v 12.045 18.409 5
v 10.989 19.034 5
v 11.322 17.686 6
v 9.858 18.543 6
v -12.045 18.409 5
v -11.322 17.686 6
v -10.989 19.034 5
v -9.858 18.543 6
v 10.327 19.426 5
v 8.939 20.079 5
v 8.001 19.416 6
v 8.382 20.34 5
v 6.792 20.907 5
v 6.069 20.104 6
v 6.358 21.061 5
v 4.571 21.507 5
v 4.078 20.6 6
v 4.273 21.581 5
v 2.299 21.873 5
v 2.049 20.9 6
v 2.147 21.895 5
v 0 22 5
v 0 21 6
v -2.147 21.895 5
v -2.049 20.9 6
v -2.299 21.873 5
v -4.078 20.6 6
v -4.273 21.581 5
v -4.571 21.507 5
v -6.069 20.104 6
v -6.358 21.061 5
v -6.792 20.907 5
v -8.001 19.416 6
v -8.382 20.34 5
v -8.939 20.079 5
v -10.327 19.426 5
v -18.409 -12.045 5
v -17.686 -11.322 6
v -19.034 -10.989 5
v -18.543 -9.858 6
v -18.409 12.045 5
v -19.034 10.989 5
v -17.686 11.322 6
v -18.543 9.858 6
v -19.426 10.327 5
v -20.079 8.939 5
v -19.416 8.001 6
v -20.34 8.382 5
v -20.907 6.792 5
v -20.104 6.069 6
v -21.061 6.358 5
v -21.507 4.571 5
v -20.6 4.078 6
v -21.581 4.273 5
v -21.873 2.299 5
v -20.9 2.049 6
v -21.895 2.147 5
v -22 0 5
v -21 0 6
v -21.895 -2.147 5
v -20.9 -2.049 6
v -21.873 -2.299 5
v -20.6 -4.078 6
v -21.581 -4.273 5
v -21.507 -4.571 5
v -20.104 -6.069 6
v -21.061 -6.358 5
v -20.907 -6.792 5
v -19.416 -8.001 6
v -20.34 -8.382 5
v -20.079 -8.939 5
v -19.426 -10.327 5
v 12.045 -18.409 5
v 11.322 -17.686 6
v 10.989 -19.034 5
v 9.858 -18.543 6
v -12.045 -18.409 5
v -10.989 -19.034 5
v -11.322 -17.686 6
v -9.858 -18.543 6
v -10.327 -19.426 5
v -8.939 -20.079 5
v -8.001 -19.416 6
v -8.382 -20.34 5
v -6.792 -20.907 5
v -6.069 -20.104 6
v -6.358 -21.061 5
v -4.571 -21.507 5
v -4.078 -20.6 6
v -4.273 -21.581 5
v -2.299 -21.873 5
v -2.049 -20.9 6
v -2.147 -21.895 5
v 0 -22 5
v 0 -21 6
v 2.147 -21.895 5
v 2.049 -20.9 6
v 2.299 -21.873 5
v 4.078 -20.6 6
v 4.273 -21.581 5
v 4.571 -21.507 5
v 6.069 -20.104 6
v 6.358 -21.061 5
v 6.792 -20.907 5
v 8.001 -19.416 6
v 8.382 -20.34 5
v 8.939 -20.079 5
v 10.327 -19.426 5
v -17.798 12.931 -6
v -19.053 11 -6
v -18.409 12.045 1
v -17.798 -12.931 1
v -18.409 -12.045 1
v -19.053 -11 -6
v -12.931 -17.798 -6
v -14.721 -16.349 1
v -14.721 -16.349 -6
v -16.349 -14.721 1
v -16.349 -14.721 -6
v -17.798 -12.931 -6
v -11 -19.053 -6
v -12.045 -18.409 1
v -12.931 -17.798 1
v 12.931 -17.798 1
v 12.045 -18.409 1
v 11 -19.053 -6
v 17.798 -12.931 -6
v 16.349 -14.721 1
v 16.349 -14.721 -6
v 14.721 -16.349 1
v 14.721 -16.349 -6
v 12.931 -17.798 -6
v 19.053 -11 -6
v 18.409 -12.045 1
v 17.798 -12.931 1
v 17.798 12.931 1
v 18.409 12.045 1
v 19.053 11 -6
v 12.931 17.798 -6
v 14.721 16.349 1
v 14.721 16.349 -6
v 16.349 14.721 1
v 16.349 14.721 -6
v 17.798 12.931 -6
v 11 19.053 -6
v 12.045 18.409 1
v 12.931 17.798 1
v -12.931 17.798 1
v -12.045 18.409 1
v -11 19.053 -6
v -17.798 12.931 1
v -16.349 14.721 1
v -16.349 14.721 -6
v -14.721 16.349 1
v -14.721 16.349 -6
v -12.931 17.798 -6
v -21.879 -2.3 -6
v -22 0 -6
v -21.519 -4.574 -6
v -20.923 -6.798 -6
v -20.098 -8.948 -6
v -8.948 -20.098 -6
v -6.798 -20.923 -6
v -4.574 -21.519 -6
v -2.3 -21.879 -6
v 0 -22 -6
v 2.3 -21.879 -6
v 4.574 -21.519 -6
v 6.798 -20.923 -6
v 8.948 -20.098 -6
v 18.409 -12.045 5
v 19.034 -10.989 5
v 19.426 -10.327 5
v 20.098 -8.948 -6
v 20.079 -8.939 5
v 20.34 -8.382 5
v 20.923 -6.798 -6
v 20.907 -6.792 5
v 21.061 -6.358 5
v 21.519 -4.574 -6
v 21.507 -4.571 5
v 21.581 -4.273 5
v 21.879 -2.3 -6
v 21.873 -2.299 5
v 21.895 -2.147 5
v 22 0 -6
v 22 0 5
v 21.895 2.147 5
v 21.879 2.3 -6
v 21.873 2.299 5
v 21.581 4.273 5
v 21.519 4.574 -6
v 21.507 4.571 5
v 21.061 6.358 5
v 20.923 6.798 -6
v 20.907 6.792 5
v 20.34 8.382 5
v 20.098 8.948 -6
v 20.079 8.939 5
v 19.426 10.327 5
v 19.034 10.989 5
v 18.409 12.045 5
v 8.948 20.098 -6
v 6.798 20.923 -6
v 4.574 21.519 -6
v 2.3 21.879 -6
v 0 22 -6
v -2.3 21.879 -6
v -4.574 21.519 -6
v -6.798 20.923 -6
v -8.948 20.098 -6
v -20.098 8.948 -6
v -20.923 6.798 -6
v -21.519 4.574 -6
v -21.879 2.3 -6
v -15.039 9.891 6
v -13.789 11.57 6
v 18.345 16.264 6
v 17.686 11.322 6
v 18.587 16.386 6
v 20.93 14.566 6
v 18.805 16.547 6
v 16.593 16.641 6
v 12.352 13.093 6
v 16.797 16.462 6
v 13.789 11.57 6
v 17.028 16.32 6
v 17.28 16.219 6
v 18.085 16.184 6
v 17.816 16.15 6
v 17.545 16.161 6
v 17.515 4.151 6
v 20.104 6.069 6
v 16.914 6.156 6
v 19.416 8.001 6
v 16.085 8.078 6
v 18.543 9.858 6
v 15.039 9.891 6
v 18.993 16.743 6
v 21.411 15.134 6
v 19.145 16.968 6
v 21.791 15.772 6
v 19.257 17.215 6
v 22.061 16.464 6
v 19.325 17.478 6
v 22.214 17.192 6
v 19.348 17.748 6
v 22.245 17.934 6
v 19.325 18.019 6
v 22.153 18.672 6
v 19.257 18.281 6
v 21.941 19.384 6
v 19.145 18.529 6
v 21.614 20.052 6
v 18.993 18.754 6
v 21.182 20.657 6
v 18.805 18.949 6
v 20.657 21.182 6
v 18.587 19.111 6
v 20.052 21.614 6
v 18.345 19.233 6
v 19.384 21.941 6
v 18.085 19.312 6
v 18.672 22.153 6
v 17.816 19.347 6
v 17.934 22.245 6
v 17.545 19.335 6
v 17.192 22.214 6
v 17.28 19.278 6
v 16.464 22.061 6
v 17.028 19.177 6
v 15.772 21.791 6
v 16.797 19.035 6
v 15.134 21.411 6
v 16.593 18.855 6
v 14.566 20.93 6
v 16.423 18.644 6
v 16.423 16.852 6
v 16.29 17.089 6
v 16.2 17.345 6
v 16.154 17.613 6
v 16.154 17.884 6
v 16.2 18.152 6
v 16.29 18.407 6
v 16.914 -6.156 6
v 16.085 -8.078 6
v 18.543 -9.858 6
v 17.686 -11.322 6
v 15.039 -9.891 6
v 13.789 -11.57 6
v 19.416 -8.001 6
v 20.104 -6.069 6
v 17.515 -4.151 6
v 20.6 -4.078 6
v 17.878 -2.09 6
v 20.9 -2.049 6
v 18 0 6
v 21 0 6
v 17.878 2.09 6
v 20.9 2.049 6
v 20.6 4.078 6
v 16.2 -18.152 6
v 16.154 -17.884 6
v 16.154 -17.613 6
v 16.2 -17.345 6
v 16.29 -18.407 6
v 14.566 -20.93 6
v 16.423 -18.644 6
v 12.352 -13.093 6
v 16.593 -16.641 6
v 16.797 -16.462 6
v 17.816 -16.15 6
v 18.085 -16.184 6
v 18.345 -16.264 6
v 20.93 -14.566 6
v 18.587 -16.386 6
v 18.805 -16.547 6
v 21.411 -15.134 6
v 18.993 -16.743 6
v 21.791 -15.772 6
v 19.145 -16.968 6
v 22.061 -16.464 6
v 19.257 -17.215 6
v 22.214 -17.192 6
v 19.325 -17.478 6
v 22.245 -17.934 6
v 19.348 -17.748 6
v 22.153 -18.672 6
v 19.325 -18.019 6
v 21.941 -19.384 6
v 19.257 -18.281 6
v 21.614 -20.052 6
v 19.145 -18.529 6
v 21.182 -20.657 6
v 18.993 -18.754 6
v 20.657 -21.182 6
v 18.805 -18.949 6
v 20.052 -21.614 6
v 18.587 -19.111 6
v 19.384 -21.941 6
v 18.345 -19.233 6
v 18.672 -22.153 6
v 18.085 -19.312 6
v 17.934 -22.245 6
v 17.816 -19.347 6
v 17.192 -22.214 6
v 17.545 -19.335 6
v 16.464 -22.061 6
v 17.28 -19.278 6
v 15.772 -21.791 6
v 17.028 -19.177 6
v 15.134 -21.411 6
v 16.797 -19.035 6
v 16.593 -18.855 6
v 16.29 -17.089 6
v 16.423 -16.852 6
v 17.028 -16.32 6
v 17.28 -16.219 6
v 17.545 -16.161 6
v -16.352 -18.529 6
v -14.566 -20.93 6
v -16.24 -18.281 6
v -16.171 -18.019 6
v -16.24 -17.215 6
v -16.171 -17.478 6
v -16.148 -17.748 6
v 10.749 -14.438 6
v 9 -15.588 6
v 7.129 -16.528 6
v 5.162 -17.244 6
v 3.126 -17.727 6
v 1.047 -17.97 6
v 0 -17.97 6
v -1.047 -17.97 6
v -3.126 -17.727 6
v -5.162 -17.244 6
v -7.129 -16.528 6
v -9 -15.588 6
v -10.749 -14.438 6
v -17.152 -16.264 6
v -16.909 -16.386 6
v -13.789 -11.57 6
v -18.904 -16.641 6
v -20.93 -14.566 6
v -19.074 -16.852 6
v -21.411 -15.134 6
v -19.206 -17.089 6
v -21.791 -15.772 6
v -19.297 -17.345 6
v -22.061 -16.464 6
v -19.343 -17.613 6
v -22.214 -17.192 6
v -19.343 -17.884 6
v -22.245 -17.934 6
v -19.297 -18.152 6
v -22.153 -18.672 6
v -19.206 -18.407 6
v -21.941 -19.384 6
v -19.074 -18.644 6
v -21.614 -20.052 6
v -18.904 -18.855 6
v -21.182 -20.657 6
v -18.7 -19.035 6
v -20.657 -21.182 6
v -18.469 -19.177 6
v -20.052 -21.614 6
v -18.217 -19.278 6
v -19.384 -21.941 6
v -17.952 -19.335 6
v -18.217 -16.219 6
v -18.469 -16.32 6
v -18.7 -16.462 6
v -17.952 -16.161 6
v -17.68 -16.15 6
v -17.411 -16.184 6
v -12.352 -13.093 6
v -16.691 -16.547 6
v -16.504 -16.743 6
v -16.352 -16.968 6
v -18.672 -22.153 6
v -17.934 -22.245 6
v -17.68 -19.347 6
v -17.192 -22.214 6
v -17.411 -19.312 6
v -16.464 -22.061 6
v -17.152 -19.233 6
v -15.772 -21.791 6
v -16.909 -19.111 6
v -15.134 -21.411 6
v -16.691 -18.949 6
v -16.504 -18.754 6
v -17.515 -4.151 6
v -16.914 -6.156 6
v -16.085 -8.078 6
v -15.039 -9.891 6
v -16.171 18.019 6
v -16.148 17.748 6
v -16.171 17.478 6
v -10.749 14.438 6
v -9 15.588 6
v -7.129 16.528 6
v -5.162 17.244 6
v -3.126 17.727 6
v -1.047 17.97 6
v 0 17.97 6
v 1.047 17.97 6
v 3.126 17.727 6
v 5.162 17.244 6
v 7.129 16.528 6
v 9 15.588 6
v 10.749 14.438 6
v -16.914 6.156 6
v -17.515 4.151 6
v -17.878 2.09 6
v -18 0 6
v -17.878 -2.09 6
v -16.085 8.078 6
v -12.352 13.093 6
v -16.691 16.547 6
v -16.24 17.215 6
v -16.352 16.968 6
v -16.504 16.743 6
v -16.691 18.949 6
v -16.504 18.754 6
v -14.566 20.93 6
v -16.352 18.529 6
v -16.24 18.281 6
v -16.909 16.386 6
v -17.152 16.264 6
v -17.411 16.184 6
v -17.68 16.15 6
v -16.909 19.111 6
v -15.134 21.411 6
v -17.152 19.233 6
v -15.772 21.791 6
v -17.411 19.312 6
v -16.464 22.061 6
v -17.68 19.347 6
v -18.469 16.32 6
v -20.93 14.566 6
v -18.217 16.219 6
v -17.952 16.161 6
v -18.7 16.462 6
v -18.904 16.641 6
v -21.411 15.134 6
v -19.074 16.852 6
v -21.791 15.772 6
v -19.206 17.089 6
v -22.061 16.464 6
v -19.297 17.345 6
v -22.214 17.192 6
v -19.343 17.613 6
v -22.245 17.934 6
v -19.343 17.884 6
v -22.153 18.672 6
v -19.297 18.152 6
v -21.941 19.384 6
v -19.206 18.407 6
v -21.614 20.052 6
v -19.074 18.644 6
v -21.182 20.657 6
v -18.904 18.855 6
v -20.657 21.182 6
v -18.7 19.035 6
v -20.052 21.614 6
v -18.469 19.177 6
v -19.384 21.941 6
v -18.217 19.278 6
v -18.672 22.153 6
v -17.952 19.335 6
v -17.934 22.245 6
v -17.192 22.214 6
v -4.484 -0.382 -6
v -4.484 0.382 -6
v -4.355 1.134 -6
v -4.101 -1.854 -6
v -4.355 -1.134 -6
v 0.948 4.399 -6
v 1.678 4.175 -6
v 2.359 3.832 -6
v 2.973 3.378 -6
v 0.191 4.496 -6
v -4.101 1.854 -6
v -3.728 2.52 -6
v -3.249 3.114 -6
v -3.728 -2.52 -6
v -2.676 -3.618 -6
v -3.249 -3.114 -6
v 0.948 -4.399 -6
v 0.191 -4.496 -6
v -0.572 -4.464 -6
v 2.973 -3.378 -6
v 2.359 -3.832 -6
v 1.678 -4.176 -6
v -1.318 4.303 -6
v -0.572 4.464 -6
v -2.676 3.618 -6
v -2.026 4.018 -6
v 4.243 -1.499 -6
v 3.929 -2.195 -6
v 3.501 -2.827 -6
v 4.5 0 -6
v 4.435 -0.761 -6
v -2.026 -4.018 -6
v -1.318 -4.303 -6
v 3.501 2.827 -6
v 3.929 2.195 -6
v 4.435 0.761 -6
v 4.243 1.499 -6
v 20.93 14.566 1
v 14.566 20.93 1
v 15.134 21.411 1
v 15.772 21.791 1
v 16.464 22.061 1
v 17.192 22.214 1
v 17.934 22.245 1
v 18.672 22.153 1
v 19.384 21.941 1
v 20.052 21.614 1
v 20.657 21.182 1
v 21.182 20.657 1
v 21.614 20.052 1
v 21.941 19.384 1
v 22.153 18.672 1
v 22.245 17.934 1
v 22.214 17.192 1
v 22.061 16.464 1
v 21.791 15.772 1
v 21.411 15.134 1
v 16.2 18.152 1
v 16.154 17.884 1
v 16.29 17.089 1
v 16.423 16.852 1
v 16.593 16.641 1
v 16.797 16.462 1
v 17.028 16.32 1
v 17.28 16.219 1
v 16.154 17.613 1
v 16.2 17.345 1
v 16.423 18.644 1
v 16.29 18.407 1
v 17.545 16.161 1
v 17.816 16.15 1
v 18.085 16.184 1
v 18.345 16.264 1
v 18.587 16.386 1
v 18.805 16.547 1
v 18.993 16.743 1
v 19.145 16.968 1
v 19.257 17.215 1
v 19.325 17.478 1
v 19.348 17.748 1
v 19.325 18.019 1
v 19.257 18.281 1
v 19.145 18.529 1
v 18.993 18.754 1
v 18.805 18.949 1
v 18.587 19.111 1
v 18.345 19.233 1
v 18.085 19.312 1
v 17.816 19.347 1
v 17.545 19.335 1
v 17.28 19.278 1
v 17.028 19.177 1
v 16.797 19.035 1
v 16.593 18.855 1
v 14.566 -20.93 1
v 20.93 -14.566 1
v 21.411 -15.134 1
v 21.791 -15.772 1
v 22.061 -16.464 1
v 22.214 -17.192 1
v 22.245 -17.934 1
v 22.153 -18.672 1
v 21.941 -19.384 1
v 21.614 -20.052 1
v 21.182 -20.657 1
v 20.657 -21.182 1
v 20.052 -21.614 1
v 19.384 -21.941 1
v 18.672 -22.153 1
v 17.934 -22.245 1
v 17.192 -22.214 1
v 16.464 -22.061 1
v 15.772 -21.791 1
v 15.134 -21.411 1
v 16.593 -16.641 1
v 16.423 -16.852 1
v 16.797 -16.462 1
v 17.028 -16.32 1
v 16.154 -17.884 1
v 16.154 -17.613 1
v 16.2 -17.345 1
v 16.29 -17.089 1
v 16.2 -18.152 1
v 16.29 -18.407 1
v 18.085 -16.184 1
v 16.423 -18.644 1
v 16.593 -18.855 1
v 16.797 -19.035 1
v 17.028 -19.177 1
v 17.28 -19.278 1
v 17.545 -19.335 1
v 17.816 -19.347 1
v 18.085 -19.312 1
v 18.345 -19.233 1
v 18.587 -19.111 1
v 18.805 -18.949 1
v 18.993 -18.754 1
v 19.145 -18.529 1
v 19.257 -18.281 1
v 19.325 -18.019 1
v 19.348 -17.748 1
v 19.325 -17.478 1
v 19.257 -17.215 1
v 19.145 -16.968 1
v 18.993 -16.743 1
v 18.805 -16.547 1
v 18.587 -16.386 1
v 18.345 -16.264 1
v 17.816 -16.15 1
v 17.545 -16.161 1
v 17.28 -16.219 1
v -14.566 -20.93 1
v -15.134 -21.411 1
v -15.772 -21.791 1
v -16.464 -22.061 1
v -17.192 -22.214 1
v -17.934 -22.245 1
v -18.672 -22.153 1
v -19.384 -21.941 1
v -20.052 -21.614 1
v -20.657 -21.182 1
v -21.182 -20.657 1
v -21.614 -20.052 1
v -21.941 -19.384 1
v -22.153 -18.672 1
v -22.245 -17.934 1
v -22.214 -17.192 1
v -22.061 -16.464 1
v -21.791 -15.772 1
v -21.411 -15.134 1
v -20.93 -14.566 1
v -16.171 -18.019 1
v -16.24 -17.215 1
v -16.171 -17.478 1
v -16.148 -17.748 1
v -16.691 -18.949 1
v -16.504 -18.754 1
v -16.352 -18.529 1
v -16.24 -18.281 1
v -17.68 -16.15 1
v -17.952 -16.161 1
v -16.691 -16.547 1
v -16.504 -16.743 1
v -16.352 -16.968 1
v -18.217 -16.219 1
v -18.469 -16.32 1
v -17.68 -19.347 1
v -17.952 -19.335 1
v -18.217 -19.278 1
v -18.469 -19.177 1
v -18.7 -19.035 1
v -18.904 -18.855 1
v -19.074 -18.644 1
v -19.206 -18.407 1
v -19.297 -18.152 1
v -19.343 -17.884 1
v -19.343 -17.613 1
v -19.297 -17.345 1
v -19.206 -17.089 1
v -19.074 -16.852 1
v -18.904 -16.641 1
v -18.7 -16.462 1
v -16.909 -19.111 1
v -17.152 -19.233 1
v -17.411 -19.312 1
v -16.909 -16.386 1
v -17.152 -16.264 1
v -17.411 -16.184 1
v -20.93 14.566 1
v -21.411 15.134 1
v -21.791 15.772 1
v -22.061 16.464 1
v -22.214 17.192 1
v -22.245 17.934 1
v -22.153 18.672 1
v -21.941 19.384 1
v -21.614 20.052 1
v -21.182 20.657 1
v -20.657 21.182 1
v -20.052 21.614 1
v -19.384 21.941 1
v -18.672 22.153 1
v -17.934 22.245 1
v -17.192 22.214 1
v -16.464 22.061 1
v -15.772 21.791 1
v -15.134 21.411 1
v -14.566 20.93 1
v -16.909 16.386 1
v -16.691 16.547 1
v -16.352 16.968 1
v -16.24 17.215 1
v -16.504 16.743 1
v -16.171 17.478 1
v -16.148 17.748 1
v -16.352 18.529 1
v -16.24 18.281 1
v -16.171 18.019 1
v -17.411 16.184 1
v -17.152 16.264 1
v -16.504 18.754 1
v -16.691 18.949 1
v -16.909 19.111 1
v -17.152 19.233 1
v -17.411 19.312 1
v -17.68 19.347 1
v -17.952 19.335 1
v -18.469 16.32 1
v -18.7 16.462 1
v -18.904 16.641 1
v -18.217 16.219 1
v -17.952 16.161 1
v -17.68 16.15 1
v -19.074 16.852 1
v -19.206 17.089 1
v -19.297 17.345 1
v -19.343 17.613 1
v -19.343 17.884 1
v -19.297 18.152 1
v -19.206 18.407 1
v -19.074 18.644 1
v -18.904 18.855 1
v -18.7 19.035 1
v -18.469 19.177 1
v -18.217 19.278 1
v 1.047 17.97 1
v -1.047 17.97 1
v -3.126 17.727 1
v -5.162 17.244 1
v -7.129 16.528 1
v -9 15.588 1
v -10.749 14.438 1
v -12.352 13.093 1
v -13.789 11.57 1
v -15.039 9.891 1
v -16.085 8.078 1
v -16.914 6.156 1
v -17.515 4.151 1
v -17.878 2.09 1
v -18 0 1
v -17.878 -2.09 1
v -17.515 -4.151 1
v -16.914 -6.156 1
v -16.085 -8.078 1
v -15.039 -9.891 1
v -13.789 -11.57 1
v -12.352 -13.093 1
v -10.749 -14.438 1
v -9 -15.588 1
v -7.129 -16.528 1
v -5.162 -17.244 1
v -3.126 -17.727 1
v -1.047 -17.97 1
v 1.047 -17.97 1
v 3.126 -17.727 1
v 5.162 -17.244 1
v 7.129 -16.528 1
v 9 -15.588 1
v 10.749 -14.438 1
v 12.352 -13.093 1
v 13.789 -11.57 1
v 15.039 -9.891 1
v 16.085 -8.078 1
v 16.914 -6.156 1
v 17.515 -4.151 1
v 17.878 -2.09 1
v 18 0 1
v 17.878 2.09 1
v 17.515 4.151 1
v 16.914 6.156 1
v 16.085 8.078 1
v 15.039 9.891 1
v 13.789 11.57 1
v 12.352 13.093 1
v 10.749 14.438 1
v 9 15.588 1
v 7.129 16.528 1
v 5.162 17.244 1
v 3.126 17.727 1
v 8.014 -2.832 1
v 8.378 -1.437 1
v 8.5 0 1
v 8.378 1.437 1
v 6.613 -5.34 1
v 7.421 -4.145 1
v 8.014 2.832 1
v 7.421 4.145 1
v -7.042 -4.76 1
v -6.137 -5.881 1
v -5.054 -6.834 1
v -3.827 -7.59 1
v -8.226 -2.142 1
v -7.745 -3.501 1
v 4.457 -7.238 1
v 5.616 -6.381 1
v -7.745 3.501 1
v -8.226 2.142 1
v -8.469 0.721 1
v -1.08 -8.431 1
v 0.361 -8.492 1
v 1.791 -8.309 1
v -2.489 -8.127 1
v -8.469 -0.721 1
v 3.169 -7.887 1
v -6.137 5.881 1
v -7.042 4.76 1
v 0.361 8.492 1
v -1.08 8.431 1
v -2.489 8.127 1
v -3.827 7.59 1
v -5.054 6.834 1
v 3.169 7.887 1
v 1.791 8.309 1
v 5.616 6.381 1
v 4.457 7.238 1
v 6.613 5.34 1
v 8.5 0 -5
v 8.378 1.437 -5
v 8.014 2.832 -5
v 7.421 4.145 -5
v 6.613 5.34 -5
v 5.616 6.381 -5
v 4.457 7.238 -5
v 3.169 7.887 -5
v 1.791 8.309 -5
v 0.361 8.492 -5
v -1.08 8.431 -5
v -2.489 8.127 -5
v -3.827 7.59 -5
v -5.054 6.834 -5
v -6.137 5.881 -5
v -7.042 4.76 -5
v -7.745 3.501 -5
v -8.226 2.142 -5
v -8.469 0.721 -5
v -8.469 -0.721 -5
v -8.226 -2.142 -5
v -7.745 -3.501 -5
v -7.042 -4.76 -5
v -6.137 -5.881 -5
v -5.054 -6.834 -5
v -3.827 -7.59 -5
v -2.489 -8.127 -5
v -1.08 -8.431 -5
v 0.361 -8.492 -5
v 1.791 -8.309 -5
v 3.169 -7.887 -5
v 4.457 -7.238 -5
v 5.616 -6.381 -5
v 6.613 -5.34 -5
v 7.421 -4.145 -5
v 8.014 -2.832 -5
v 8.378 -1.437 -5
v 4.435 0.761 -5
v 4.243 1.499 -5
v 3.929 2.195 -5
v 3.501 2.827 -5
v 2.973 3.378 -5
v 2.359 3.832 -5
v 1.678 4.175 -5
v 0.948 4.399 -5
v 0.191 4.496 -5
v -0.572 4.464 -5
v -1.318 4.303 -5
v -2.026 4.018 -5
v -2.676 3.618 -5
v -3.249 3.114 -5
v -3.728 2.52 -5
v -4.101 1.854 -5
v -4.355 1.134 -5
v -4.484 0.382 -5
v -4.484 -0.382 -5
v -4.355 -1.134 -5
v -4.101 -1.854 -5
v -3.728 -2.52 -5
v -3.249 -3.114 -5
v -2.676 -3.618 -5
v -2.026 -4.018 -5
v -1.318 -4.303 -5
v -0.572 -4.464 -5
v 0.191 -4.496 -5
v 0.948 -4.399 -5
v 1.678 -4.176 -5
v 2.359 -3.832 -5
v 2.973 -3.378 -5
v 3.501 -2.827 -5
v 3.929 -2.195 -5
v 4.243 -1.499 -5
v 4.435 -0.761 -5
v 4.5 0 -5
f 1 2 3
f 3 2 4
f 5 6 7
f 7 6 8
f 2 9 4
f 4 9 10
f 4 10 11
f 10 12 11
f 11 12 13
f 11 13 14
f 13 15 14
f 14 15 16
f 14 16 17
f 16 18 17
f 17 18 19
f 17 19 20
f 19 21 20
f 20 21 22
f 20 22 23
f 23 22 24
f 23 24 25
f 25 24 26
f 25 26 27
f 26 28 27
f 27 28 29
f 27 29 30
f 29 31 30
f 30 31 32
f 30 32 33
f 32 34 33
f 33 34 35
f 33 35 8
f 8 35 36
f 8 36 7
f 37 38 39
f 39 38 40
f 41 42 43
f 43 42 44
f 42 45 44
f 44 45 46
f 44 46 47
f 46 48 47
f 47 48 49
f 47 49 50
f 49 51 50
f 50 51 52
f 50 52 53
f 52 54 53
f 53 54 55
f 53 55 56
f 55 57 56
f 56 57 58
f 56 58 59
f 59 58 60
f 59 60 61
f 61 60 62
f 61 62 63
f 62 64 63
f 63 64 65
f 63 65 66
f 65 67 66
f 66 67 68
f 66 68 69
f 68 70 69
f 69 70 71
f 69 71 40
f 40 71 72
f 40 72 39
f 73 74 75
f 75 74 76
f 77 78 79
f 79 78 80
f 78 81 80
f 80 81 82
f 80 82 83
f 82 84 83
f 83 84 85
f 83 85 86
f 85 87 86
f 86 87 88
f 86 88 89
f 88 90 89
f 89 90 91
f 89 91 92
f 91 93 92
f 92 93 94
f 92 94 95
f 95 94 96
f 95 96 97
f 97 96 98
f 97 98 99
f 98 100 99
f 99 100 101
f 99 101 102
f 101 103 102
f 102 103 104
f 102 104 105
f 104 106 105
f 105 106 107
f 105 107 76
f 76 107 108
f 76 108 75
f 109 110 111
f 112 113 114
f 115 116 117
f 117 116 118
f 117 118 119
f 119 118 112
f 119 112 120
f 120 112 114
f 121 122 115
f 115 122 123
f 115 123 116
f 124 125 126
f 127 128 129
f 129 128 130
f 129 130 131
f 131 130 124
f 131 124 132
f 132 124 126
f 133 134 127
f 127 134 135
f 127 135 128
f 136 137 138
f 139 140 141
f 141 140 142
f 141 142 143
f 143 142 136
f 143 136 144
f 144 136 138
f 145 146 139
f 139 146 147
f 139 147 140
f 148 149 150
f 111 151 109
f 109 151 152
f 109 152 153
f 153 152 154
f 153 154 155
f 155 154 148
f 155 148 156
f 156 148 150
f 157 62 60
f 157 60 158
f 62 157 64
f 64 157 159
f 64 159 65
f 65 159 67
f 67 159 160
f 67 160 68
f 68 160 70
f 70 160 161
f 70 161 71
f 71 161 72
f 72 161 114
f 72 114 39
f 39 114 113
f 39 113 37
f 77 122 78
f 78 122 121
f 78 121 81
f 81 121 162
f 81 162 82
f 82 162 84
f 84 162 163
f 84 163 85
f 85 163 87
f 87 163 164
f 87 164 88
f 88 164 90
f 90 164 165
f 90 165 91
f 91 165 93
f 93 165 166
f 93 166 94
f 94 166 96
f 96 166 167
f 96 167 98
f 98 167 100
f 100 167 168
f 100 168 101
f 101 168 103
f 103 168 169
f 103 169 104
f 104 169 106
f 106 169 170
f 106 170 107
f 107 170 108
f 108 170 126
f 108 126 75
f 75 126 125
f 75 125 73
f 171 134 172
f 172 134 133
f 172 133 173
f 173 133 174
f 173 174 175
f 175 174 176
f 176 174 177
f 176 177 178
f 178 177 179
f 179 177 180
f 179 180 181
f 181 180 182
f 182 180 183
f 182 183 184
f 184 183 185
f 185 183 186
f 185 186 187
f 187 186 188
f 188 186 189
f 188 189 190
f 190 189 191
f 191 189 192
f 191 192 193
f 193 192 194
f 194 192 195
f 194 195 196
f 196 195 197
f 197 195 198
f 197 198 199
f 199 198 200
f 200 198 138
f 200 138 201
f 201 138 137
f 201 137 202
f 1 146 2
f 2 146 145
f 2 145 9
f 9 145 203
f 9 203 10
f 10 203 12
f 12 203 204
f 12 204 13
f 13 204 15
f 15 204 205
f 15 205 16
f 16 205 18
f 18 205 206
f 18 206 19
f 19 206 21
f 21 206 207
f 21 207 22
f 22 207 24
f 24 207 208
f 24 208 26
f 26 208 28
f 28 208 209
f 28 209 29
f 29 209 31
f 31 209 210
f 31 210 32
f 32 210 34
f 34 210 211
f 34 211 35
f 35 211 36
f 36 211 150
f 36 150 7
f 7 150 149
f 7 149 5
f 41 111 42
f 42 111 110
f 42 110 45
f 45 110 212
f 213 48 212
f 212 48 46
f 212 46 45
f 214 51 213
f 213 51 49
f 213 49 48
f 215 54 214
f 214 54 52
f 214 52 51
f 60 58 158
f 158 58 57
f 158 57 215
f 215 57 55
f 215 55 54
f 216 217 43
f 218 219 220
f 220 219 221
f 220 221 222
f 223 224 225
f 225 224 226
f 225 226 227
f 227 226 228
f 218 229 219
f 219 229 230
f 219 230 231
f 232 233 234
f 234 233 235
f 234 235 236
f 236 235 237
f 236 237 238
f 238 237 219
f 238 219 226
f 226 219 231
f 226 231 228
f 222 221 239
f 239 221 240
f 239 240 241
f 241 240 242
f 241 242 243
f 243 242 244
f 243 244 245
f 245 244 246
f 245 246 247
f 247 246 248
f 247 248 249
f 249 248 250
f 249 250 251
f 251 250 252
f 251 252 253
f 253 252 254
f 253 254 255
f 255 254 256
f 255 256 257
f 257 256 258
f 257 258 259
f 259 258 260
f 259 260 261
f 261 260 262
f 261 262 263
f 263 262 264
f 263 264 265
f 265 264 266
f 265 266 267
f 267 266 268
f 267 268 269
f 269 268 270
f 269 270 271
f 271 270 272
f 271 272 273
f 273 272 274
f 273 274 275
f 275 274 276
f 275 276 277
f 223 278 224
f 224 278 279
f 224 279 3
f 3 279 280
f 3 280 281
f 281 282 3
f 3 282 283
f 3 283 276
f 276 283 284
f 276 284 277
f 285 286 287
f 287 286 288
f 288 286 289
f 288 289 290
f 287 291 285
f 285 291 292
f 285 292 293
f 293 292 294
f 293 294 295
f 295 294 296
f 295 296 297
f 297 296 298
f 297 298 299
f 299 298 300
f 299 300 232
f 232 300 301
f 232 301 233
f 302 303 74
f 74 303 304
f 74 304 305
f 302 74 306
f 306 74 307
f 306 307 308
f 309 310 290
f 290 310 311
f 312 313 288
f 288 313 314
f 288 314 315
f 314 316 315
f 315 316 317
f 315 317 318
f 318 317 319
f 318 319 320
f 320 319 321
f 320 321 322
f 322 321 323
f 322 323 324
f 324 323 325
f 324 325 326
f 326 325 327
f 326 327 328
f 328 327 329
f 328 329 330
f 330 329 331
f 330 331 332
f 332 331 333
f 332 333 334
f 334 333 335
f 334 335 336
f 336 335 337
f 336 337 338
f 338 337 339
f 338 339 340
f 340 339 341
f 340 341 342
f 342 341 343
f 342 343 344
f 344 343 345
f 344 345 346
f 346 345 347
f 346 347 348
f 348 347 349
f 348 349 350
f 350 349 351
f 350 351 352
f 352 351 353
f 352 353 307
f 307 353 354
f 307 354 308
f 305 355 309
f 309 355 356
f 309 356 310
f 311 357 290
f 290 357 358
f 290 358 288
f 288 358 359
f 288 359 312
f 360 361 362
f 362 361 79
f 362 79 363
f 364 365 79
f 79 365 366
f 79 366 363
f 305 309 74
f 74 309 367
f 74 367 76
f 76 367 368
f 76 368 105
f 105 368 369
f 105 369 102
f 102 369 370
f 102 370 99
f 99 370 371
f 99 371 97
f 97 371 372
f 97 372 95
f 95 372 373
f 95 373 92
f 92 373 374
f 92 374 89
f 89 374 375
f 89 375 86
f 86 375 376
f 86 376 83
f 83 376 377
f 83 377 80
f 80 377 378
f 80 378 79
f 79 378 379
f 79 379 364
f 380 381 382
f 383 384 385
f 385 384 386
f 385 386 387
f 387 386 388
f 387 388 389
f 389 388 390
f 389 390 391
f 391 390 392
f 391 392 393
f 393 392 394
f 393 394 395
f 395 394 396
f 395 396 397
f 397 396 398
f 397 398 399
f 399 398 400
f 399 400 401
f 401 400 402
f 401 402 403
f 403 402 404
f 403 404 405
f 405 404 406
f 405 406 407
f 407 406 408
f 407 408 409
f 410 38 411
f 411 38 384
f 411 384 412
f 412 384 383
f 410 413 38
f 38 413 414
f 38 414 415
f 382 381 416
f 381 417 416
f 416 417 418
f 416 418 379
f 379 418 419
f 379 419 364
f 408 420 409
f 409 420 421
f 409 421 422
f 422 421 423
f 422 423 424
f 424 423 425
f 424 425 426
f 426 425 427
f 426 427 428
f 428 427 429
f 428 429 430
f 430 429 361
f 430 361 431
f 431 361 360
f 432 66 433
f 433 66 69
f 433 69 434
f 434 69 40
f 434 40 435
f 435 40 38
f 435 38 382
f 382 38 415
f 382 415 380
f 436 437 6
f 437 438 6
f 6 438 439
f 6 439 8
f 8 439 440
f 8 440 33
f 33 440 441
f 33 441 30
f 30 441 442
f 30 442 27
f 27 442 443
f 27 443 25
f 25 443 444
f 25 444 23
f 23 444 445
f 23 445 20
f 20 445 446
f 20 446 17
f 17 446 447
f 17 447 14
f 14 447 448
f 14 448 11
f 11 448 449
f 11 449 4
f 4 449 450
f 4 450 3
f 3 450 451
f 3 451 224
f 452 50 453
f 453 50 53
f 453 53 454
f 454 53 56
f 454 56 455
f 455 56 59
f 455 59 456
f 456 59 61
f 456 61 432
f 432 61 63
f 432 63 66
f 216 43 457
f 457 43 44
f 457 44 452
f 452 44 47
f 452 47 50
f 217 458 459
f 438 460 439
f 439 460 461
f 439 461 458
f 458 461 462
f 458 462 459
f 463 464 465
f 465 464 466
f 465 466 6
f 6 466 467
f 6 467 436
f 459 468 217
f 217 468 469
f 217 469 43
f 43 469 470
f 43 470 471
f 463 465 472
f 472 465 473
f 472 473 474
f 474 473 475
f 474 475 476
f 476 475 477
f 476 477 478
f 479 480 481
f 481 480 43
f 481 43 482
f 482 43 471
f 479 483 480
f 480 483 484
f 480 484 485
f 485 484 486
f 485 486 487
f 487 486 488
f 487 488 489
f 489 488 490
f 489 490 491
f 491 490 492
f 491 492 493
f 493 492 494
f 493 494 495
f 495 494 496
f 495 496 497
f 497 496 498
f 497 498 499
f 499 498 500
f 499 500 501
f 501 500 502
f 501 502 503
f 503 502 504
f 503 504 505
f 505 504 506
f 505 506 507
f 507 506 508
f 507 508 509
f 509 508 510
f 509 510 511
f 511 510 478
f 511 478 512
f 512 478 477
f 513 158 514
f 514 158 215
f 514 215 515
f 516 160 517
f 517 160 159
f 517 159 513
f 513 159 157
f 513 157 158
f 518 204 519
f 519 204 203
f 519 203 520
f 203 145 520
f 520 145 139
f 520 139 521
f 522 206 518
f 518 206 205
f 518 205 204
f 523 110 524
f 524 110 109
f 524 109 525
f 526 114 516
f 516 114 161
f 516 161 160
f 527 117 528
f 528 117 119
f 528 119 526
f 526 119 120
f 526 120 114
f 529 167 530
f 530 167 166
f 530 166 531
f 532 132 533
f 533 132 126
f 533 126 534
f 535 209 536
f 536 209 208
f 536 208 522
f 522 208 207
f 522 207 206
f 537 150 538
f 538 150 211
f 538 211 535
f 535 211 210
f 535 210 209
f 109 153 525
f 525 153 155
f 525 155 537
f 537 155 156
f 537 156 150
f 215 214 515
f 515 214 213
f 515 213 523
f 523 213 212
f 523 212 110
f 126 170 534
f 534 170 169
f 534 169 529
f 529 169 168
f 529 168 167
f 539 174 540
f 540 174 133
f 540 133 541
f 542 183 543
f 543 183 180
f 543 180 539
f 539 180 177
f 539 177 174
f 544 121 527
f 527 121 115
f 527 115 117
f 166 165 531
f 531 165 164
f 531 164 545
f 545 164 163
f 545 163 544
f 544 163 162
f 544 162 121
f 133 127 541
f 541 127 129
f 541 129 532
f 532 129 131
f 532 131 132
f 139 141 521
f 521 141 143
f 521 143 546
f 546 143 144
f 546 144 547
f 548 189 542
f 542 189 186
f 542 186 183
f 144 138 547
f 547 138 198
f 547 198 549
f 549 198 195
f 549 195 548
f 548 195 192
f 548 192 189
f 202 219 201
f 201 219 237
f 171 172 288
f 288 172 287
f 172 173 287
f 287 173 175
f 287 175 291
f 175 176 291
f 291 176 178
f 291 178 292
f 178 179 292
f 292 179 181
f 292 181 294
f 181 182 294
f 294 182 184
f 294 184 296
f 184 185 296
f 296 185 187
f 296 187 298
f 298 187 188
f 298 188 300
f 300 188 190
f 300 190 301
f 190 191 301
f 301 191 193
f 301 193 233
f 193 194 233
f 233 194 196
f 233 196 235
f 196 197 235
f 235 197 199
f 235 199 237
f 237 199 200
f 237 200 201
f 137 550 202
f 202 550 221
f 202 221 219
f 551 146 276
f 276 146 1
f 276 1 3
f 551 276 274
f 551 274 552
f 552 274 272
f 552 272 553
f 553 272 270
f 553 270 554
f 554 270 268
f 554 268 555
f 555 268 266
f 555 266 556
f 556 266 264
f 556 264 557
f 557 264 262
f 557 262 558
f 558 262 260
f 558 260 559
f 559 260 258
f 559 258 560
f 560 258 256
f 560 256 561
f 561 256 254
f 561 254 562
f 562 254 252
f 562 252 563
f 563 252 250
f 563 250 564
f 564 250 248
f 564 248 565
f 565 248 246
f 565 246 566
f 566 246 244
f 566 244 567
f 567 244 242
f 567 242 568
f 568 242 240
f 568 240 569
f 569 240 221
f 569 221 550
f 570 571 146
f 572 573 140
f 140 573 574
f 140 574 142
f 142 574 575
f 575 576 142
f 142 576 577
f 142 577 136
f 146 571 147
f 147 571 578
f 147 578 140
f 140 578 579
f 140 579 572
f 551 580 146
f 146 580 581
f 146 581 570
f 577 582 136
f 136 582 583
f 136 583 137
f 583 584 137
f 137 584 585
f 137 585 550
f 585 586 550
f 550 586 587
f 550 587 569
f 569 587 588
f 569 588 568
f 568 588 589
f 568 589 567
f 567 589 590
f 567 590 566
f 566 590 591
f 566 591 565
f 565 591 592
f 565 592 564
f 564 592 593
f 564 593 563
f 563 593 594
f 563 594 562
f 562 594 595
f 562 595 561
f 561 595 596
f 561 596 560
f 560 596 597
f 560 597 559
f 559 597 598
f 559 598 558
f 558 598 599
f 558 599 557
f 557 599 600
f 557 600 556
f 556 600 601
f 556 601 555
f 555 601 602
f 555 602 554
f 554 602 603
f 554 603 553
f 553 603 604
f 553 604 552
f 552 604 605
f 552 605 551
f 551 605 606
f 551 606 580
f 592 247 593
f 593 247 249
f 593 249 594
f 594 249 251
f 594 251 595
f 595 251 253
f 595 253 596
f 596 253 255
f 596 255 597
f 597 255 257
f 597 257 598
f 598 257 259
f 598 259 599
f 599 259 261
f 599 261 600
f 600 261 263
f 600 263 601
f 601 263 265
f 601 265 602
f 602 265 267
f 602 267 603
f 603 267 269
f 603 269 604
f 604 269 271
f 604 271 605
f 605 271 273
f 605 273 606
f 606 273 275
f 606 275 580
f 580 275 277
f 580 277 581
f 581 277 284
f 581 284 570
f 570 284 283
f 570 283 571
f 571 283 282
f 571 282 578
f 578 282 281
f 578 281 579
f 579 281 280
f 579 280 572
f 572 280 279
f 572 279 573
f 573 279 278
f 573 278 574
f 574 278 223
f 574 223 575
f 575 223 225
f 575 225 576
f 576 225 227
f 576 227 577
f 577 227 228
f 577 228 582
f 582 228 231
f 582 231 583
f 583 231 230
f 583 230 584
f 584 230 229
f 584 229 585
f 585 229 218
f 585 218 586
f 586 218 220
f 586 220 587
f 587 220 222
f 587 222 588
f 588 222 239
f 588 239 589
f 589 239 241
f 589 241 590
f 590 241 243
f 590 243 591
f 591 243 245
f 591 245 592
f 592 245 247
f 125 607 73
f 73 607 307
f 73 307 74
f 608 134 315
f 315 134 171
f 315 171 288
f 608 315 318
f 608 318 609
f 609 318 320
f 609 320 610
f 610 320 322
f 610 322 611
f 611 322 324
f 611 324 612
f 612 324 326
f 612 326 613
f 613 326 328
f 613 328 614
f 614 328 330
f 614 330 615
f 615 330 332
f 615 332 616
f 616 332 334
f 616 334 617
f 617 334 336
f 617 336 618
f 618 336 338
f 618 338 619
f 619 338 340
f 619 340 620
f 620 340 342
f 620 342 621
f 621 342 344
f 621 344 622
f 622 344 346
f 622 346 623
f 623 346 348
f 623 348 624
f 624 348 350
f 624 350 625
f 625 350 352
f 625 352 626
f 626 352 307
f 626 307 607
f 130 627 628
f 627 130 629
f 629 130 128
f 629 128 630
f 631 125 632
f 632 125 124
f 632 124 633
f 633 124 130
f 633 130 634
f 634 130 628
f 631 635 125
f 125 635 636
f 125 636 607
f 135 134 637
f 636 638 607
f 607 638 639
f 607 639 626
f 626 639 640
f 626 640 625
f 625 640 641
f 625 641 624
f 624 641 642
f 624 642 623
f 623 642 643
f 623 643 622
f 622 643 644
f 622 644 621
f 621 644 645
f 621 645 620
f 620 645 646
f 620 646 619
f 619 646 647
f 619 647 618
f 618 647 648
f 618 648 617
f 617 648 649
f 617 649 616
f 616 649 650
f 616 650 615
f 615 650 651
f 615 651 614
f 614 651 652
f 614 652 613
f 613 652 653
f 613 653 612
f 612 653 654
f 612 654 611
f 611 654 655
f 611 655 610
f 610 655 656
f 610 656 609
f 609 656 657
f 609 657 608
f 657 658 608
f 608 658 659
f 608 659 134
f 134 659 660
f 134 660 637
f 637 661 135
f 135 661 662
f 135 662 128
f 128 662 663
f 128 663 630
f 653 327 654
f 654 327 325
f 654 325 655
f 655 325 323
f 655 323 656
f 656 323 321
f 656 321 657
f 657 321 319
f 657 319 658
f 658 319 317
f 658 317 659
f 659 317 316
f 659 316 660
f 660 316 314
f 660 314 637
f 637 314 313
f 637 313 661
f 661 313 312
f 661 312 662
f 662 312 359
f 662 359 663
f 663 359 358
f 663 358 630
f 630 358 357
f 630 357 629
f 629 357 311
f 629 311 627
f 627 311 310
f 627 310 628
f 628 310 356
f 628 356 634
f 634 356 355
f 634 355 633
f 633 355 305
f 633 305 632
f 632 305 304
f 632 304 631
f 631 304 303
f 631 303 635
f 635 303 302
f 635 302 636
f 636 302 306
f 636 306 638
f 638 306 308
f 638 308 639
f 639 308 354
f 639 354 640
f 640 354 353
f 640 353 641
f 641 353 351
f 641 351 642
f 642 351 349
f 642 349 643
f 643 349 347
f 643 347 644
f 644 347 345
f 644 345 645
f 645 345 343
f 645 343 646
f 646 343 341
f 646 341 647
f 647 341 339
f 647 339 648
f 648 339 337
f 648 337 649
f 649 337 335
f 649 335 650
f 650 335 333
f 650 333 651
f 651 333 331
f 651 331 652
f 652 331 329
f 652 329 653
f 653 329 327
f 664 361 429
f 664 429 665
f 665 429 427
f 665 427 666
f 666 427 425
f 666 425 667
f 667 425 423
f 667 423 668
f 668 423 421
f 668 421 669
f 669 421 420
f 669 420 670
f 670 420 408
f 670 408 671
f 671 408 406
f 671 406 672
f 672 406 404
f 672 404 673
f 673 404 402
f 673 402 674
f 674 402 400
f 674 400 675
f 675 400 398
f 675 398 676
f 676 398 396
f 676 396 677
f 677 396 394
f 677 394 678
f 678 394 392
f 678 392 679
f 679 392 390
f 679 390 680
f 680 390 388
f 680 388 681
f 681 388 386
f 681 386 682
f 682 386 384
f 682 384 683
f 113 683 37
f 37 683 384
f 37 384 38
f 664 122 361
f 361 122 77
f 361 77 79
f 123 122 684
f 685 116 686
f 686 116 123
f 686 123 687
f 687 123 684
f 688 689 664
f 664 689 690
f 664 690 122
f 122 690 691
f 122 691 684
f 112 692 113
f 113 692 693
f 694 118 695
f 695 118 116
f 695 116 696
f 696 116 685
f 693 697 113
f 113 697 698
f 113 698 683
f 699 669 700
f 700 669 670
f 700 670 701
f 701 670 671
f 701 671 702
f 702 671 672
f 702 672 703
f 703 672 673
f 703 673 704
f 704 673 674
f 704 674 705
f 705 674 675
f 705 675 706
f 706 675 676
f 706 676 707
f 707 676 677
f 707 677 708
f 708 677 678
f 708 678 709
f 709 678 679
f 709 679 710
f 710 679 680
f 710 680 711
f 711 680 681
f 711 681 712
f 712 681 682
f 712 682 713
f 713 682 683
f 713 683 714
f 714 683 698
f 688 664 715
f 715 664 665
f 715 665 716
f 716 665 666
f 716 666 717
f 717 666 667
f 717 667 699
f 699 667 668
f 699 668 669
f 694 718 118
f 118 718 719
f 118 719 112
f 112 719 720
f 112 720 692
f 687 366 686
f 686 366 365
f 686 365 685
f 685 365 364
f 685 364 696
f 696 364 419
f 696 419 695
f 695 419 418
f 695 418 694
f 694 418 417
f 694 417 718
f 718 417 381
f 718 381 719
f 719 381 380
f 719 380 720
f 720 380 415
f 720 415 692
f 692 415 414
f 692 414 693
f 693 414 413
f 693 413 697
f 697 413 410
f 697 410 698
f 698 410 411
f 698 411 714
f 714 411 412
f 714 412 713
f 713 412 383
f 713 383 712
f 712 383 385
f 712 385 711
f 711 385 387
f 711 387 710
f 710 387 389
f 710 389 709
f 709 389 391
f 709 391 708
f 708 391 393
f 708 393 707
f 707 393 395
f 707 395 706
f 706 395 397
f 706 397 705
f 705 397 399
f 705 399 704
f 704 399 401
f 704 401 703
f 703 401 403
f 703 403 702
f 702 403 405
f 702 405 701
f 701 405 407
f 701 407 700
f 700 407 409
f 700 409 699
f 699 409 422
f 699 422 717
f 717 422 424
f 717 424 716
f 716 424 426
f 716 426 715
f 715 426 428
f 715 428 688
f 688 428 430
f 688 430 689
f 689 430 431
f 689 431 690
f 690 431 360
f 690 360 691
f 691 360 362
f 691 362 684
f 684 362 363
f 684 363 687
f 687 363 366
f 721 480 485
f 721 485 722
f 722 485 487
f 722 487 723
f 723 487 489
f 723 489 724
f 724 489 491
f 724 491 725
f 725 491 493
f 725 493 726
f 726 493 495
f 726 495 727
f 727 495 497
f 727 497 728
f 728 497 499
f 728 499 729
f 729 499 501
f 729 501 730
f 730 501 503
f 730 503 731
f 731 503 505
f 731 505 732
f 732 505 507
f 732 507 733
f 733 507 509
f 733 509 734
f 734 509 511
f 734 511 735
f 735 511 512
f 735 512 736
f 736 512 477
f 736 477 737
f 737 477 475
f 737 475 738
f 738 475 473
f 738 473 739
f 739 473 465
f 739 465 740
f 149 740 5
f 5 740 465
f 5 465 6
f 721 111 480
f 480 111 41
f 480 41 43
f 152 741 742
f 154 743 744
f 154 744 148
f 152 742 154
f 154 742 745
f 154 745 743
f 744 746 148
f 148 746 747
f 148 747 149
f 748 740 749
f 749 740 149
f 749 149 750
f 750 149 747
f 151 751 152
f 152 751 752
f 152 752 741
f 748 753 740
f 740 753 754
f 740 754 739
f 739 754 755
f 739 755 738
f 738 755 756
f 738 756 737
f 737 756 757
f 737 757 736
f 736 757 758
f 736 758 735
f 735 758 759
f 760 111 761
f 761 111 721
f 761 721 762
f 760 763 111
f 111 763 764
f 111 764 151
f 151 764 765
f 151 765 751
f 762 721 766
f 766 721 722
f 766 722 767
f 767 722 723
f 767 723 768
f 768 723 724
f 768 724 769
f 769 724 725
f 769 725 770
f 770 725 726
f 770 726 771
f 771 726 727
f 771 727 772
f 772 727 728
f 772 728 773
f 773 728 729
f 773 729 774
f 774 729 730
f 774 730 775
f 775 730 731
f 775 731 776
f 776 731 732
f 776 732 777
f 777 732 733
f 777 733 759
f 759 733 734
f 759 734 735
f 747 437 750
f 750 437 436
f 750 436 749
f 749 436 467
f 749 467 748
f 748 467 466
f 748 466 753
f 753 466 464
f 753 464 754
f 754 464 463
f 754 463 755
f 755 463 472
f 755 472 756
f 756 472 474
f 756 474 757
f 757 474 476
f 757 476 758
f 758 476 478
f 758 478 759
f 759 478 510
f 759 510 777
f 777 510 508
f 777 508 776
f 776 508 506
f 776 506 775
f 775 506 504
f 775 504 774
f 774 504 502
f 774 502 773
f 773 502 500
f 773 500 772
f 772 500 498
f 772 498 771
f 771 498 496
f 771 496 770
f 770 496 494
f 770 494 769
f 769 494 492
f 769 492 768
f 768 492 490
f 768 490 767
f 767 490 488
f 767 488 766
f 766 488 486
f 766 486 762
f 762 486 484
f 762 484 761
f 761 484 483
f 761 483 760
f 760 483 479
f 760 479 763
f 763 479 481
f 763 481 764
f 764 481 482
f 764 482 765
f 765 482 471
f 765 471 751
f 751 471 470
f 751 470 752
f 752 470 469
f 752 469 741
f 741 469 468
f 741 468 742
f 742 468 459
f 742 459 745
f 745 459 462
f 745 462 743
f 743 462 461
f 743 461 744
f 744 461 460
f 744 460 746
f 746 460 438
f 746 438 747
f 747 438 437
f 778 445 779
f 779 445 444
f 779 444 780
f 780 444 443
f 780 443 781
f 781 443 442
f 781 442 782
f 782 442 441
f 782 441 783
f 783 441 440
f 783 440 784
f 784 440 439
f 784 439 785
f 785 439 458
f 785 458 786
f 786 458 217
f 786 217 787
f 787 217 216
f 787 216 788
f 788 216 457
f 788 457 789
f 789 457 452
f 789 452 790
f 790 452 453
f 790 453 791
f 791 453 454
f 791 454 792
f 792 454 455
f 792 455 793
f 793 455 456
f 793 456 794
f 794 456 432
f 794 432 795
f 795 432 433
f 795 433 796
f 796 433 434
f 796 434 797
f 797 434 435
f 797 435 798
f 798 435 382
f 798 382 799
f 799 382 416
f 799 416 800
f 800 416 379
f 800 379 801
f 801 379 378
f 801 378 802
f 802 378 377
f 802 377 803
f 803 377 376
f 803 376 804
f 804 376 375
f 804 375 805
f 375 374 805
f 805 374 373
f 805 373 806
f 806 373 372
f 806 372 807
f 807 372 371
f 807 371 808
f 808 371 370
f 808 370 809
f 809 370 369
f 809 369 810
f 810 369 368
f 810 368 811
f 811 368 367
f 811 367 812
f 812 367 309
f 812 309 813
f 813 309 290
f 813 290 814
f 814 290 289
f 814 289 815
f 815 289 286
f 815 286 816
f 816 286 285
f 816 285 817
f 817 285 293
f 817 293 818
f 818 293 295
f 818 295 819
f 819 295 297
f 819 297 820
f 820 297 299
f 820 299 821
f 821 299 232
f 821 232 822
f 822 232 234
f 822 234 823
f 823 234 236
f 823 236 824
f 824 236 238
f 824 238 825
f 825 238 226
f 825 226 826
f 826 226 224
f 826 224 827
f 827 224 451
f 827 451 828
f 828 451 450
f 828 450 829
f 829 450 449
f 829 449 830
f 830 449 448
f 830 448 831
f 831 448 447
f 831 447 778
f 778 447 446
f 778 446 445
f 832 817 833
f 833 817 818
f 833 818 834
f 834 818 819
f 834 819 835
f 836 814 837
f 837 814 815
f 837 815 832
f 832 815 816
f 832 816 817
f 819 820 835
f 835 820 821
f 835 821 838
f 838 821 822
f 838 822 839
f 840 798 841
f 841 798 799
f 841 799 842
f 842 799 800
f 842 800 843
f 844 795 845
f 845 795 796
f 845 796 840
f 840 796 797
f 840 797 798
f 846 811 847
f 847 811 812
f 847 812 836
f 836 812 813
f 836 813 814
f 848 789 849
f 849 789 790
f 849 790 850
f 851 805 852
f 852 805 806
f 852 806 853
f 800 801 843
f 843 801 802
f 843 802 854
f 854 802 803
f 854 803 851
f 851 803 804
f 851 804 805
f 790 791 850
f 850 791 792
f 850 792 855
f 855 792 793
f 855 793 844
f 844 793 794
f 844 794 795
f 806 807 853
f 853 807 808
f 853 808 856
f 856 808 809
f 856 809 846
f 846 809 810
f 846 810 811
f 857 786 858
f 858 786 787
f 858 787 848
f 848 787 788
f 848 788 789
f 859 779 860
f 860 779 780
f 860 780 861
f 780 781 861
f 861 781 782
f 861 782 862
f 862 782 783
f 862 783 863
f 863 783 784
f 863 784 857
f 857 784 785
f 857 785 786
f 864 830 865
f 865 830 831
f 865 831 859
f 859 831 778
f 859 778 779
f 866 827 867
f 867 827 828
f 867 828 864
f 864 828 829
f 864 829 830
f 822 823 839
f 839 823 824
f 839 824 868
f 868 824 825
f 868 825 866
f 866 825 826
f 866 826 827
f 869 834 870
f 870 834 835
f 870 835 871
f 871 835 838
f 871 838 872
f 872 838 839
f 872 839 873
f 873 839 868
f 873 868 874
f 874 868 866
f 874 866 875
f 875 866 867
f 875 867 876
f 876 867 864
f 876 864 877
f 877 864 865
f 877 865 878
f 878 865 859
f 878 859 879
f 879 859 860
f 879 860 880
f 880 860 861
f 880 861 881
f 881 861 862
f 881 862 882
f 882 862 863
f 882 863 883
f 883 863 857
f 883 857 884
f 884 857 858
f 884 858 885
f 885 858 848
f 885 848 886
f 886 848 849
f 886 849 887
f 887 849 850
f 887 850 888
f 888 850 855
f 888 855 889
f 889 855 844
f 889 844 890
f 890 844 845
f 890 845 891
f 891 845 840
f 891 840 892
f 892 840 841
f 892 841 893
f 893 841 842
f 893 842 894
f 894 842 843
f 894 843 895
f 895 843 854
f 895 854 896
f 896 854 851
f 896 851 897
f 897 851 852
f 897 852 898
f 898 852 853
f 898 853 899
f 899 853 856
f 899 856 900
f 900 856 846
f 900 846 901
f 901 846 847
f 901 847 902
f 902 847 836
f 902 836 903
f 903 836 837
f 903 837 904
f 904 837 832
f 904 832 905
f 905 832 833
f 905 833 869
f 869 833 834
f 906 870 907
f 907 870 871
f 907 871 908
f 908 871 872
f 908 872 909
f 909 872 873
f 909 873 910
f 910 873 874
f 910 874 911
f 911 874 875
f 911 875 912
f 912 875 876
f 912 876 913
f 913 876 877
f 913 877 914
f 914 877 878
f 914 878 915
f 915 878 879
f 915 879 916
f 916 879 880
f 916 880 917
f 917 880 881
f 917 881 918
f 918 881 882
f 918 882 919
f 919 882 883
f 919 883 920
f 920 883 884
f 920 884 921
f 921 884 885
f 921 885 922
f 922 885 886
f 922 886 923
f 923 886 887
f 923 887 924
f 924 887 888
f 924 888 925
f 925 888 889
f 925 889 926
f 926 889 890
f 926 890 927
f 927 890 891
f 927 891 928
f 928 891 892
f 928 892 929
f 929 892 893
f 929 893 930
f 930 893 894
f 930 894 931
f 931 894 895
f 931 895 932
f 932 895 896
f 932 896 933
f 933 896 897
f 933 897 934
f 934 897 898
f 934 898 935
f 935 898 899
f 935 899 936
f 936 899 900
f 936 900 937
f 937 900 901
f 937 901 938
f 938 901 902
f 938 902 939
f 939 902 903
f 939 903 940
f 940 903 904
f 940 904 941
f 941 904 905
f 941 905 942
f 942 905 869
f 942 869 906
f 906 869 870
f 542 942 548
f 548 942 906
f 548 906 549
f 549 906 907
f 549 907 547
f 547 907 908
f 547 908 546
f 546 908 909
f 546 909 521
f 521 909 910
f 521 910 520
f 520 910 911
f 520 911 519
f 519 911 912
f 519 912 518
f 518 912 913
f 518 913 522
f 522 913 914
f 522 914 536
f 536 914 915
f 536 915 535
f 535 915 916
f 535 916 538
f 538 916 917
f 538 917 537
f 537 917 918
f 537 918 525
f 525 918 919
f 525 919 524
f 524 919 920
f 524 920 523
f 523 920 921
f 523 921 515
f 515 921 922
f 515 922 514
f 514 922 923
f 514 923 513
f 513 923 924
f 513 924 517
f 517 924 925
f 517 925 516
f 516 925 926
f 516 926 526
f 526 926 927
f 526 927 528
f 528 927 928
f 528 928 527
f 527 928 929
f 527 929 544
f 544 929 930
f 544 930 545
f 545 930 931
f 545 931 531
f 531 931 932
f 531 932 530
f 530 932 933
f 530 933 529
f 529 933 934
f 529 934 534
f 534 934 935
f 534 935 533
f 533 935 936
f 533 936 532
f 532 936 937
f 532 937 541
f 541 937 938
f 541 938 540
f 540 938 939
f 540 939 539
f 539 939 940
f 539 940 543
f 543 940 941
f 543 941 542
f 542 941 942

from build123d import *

# Parameters (mm, degrees)
SKETCH1_R           = 22
BOSS_EXTRUDE1_DEPTH = 6
CHAMFER1_SIZE       = 1
SKETCH8_R           = 1.6
BOSS_EXTRUDE2_DEPTH = 5
SKETCH9_R           = 18
CUT_EXTRUDE1_DEPTH  = 5
SKETCH10_R          = 8.5
CUT_EXTRUDE2_DEPTH  = 6
SKETCH11_R          = 4.5
CUT_EXTRUDE3_DEPTH  = 1


with BuildPart() as part:
    # Sketch1 → Boss-Extrude1 (new, symmetric)
    with BuildSketch(Plane.XY):
        Circle(SKETCH1_R)
    extrude(amount=BOSS_EXTRUDE1_DEPTH, both=True)

    # Chamfer1
    chamfer1_edges = [part.edges().sort_by_distance(p)[0] for p in [
        (-22, 0, 6),
    ]]
    chamfer(chamfer1_edges, length=CHAMFER1_SIZE)

    # Sketch8 → Boss-Extrude2 (add)
    # profile 1 of 4: a face of its own
    with BuildSketch(Plane.XY.offset(6)):
        with BuildLine():
            Line((20.930360723, -14.566399692), (17.68629022, -11.322329189))
            Line((17.68629022, -11.322329189), (11.322329189, -17.68629022))
            Line((11.322329189, -17.68629022), (14.566399692, -20.930360723))
            ThreePointArc((14.566399692, -20.930360723), (20.930360723, -20.930360723), (20.930360723, -14.566399692))
        make_face()
        with Locations((17.748380208, -17.748380208)):
            Circle(SKETCH8_R, mode=Mode.SUBTRACT)
    # profile 2 of 4: a face of its own
    with BuildSketch(Plane.XY.offset(6)):
        with BuildLine():
            Line((14.566399692, 20.930360723), (11.322329189, 17.68629022))
            Line((11.322329189, 17.68629022), (17.68629022, 11.322329189))
            Line((17.68629022, 11.322329189), (20.930360723, 14.566399692))
            ThreePointArc((20.930360723, 14.566399692), (20.930360723, 20.930360723), (14.566399692, 20.930360723))
        make_face()
        with Locations((17.748380208, 17.748380208)):
            Circle(SKETCH8_R, mode=Mode.SUBTRACT)
    # profile 3 of 4: a face of its own
    with BuildSketch(Plane.XY.offset(6)):
        with BuildLine():
            Line((-14.566399692, -20.930360723), (-11.322329189, -17.68629022))
            Line((-11.322329189, -17.68629022), (-17.68629022, -11.322329189))
            Line((-17.68629022, -11.322329189), (-20.930360723, -14.566399692))
            ThreePointArc((-20.930360723, -14.566399692), (-20.930360723, -20.930360723), (-14.566399692, -20.930360723))
        make_face()
        with Locations((-17.748380208, -17.748380208)):
            Circle(SKETCH8_R, mode=Mode.SUBTRACT)
    # profile 4 of 4: a face of its own
    with BuildSketch(Plane.XY.offset(6)):
        with BuildLine():
            Line((-20.930360723, 14.566399692), (-17.68629022, 11.322329189))
            Line((-17.68629022, 11.322329189), (-11.322329189, 17.68629022))
            Line((-11.322329189, 17.68629022), (-14.566399692, 20.930360723))
            ThreePointArc((-14.566399692, 20.930360723), (-20.930360723, 20.930360723), (-20.930360723, 14.566399692))
        make_face()
        with Locations((-17.748380208, 17.748380208)):
            Circle(SKETCH8_R, mode=Mode.SUBTRACT)
    extrude(amount=-BOSS_EXTRUDE2_DEPTH)

    # Sketch9 → Cut-Extrude1 (cut)
    with BuildSketch(Plane.XY.offset(6)):
        Circle(SKETCH9_R)
    extrude(amount=-CUT_EXTRUDE1_DEPTH, mode=Mode.SUBTRACT)

    # Sketch10 → Cut-Extrude2 (cut)
    with BuildSketch(Plane.XY.offset(1)):
        Circle(SKETCH10_R)
    extrude(amount=-CUT_EXTRUDE2_DEPTH, mode=Mode.SUBTRACT)

    # Sketch11 → Cut-Extrude3 (cut)
    with BuildSketch(Plane.XY.offset(-5)):
        Circle(SKETCH11_R)
    extrude(amount=-CUT_EXTRUDE3_DEPTH, mode=Mode.SUBTRACT)


solid = part.part
